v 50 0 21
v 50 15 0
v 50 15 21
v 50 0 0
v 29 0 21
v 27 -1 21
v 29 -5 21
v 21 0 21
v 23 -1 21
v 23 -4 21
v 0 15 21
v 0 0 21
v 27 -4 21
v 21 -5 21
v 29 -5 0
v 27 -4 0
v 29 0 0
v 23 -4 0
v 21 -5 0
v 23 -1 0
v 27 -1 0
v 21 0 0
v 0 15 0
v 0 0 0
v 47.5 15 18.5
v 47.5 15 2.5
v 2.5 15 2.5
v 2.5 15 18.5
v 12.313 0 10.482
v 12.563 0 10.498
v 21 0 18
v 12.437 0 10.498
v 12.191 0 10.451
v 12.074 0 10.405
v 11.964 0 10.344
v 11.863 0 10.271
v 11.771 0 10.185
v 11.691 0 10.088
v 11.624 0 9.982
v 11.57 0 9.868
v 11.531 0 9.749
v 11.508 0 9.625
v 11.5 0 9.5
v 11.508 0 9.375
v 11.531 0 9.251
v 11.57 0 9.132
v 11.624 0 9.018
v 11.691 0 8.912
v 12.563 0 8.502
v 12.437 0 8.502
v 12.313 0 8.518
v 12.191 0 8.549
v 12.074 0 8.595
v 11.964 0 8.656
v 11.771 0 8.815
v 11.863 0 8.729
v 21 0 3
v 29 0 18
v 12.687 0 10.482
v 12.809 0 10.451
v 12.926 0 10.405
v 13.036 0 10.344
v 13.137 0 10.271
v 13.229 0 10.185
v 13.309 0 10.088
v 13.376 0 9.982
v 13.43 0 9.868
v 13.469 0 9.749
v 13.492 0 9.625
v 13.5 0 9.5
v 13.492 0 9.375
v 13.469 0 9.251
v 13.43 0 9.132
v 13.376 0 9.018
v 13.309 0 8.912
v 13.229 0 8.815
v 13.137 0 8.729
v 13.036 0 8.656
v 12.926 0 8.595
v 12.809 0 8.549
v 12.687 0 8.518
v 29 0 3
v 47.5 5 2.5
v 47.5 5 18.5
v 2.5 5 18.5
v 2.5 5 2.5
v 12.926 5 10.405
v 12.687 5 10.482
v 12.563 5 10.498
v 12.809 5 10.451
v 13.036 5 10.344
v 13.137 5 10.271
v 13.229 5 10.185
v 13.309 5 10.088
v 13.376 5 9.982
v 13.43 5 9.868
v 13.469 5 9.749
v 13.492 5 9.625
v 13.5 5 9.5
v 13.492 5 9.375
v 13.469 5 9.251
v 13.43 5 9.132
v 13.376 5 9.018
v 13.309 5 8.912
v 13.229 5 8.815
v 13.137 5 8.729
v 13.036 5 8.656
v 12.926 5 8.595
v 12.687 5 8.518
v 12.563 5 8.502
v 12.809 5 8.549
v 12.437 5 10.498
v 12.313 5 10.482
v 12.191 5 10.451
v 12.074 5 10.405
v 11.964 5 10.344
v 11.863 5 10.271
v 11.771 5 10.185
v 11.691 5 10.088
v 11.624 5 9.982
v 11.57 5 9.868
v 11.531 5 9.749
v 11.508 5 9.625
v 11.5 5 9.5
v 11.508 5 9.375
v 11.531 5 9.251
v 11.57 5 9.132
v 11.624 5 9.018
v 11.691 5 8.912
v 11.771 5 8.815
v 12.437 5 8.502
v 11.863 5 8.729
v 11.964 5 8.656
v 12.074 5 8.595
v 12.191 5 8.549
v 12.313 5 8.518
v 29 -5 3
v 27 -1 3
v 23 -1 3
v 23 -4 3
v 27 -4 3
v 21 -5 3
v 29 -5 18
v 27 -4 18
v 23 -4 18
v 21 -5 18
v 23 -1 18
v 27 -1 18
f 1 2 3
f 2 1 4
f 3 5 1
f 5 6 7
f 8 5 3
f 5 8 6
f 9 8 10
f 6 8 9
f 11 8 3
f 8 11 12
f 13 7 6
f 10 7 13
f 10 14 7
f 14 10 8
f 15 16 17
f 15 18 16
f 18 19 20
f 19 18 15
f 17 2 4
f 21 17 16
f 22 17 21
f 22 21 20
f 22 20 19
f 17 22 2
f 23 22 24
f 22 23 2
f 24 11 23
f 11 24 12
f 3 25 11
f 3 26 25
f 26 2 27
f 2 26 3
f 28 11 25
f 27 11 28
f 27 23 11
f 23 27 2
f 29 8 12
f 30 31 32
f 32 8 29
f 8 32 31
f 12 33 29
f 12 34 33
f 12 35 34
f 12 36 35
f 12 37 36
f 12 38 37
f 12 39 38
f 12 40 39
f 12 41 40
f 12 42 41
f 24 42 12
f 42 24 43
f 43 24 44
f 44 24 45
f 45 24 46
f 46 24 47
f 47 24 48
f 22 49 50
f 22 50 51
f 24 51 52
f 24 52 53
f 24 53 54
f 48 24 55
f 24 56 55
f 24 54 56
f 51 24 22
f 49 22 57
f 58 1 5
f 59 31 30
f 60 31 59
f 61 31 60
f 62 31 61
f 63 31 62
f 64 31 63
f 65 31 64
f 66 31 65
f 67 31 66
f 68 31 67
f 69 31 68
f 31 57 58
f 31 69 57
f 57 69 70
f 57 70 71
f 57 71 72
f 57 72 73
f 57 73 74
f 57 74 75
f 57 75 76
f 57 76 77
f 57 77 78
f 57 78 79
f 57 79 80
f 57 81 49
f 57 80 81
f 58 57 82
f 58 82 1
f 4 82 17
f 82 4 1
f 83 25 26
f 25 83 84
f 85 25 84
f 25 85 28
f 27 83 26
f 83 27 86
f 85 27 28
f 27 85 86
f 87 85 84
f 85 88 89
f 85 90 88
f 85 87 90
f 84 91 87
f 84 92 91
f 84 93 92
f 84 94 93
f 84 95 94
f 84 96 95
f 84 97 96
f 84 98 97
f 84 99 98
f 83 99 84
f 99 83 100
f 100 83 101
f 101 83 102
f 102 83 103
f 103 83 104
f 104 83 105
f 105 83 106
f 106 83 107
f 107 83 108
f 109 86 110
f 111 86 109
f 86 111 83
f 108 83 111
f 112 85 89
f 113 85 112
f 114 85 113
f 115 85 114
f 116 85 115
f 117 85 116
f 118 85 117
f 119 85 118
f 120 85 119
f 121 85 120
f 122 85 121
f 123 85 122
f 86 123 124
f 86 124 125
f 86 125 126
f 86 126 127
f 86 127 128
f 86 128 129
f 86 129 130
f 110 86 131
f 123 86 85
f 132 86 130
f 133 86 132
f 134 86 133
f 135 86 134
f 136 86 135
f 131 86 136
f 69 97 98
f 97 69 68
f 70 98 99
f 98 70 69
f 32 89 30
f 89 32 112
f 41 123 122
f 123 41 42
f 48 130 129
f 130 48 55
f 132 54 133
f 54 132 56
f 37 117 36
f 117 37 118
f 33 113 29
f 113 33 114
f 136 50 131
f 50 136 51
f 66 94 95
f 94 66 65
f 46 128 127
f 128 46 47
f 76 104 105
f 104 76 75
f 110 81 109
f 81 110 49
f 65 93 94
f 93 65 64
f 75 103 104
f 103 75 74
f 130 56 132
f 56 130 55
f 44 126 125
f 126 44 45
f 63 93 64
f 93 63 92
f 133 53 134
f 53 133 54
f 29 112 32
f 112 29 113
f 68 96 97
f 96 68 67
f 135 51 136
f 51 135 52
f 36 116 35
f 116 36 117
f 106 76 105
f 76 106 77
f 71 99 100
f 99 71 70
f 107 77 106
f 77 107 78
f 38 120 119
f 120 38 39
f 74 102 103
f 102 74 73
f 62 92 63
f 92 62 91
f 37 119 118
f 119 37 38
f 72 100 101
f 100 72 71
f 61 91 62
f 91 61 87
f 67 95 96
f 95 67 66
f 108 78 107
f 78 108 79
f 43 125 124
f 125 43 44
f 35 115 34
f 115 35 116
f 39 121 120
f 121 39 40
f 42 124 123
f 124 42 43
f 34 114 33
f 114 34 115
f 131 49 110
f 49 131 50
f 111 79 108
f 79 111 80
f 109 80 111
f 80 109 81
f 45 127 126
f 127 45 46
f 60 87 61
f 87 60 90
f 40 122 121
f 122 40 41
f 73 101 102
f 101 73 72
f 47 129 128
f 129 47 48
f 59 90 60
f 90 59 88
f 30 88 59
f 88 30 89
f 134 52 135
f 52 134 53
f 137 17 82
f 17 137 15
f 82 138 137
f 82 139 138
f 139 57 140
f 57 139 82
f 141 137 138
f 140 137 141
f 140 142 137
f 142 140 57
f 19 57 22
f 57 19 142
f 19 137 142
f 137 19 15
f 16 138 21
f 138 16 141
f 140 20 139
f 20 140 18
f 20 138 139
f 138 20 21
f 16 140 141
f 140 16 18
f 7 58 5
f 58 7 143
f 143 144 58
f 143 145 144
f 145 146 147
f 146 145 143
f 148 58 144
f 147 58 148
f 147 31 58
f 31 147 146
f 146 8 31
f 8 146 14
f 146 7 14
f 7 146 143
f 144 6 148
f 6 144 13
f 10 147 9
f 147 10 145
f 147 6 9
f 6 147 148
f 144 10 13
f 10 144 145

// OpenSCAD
lamp_inside_x = 45;
lamp_inside_y = 10;
lamp_inside_z = 16;

lamp_x = (lamp_inside_x + 5);
lamp_y = (lamp_inside_y + 5);
lamp_z = (lamp_inside_z + 5);



bracket_x = 8;
bracket_y = 5;
bracket_z = 3;
bracket_hole_x = 4;
bracket_hole_y = 3;
bracket_hole_z = 3;

//main body
module main_body(){
   cube([lamp_x,lamp_y,lamp_z]);}
module cube_inside(x,y,z,inside_x,inside_y,inside_z){
   lamp_pos_x = (x-inside_x)/2;
   lamp_pos_y = (y-inside_y);
   lamp_pos_z = (z-inside_z)/2;
   
   translate([lamp_pos_x,lamp_pos_y,lamp_pos_z]){
	  cube([inside_x,inside_y,inside_z]);}
   ;}   
module bracket(){
   difference(){
	  cube([bracket_x,bracket_y,bracket_z]);
	  translate([(bracket_x-bracket_hole_x)/2,(bracket_y-bracket_hole_y)/2,(bracket_z-bracket_hole_z)/2]){
		 cube([bracket_hole_x,bracket_hole_y,bracket_hole_z]);}
	  }
   }

module wire_hole(){
    wire_hole_radius = 1;
    translate([(lamp_x)/4,(lamp_y-lamp_inside_y),(lamp_y/2)+(wire_hole_radius*2)]){
        rotate([90,0,0]){
            cylinder(h=(lamp_y-lamp_inside_y), r=wire_hole_radius, $fn=50);
        }
    }
}

module main(){
    difference(){
        difference(){
            //main body
            main_body();
            //cube inside
            cube_inside(lamp_x,lamp_y,lamp_z,lamp_inside_x,lamp_inside_y,lamp_inside_z);
        }
        wire_hole();
    }
	  
   //bracket down
   translate([(lamp_x-bracket_x)/2,-bracket_y,0]){
	  bracket();}
   //bracket up
   translate([(lamp_x-bracket_x)/2,-bracket_y,lamp_z-bracket_z]){
		 bracket();}
	  
   
}



main();
